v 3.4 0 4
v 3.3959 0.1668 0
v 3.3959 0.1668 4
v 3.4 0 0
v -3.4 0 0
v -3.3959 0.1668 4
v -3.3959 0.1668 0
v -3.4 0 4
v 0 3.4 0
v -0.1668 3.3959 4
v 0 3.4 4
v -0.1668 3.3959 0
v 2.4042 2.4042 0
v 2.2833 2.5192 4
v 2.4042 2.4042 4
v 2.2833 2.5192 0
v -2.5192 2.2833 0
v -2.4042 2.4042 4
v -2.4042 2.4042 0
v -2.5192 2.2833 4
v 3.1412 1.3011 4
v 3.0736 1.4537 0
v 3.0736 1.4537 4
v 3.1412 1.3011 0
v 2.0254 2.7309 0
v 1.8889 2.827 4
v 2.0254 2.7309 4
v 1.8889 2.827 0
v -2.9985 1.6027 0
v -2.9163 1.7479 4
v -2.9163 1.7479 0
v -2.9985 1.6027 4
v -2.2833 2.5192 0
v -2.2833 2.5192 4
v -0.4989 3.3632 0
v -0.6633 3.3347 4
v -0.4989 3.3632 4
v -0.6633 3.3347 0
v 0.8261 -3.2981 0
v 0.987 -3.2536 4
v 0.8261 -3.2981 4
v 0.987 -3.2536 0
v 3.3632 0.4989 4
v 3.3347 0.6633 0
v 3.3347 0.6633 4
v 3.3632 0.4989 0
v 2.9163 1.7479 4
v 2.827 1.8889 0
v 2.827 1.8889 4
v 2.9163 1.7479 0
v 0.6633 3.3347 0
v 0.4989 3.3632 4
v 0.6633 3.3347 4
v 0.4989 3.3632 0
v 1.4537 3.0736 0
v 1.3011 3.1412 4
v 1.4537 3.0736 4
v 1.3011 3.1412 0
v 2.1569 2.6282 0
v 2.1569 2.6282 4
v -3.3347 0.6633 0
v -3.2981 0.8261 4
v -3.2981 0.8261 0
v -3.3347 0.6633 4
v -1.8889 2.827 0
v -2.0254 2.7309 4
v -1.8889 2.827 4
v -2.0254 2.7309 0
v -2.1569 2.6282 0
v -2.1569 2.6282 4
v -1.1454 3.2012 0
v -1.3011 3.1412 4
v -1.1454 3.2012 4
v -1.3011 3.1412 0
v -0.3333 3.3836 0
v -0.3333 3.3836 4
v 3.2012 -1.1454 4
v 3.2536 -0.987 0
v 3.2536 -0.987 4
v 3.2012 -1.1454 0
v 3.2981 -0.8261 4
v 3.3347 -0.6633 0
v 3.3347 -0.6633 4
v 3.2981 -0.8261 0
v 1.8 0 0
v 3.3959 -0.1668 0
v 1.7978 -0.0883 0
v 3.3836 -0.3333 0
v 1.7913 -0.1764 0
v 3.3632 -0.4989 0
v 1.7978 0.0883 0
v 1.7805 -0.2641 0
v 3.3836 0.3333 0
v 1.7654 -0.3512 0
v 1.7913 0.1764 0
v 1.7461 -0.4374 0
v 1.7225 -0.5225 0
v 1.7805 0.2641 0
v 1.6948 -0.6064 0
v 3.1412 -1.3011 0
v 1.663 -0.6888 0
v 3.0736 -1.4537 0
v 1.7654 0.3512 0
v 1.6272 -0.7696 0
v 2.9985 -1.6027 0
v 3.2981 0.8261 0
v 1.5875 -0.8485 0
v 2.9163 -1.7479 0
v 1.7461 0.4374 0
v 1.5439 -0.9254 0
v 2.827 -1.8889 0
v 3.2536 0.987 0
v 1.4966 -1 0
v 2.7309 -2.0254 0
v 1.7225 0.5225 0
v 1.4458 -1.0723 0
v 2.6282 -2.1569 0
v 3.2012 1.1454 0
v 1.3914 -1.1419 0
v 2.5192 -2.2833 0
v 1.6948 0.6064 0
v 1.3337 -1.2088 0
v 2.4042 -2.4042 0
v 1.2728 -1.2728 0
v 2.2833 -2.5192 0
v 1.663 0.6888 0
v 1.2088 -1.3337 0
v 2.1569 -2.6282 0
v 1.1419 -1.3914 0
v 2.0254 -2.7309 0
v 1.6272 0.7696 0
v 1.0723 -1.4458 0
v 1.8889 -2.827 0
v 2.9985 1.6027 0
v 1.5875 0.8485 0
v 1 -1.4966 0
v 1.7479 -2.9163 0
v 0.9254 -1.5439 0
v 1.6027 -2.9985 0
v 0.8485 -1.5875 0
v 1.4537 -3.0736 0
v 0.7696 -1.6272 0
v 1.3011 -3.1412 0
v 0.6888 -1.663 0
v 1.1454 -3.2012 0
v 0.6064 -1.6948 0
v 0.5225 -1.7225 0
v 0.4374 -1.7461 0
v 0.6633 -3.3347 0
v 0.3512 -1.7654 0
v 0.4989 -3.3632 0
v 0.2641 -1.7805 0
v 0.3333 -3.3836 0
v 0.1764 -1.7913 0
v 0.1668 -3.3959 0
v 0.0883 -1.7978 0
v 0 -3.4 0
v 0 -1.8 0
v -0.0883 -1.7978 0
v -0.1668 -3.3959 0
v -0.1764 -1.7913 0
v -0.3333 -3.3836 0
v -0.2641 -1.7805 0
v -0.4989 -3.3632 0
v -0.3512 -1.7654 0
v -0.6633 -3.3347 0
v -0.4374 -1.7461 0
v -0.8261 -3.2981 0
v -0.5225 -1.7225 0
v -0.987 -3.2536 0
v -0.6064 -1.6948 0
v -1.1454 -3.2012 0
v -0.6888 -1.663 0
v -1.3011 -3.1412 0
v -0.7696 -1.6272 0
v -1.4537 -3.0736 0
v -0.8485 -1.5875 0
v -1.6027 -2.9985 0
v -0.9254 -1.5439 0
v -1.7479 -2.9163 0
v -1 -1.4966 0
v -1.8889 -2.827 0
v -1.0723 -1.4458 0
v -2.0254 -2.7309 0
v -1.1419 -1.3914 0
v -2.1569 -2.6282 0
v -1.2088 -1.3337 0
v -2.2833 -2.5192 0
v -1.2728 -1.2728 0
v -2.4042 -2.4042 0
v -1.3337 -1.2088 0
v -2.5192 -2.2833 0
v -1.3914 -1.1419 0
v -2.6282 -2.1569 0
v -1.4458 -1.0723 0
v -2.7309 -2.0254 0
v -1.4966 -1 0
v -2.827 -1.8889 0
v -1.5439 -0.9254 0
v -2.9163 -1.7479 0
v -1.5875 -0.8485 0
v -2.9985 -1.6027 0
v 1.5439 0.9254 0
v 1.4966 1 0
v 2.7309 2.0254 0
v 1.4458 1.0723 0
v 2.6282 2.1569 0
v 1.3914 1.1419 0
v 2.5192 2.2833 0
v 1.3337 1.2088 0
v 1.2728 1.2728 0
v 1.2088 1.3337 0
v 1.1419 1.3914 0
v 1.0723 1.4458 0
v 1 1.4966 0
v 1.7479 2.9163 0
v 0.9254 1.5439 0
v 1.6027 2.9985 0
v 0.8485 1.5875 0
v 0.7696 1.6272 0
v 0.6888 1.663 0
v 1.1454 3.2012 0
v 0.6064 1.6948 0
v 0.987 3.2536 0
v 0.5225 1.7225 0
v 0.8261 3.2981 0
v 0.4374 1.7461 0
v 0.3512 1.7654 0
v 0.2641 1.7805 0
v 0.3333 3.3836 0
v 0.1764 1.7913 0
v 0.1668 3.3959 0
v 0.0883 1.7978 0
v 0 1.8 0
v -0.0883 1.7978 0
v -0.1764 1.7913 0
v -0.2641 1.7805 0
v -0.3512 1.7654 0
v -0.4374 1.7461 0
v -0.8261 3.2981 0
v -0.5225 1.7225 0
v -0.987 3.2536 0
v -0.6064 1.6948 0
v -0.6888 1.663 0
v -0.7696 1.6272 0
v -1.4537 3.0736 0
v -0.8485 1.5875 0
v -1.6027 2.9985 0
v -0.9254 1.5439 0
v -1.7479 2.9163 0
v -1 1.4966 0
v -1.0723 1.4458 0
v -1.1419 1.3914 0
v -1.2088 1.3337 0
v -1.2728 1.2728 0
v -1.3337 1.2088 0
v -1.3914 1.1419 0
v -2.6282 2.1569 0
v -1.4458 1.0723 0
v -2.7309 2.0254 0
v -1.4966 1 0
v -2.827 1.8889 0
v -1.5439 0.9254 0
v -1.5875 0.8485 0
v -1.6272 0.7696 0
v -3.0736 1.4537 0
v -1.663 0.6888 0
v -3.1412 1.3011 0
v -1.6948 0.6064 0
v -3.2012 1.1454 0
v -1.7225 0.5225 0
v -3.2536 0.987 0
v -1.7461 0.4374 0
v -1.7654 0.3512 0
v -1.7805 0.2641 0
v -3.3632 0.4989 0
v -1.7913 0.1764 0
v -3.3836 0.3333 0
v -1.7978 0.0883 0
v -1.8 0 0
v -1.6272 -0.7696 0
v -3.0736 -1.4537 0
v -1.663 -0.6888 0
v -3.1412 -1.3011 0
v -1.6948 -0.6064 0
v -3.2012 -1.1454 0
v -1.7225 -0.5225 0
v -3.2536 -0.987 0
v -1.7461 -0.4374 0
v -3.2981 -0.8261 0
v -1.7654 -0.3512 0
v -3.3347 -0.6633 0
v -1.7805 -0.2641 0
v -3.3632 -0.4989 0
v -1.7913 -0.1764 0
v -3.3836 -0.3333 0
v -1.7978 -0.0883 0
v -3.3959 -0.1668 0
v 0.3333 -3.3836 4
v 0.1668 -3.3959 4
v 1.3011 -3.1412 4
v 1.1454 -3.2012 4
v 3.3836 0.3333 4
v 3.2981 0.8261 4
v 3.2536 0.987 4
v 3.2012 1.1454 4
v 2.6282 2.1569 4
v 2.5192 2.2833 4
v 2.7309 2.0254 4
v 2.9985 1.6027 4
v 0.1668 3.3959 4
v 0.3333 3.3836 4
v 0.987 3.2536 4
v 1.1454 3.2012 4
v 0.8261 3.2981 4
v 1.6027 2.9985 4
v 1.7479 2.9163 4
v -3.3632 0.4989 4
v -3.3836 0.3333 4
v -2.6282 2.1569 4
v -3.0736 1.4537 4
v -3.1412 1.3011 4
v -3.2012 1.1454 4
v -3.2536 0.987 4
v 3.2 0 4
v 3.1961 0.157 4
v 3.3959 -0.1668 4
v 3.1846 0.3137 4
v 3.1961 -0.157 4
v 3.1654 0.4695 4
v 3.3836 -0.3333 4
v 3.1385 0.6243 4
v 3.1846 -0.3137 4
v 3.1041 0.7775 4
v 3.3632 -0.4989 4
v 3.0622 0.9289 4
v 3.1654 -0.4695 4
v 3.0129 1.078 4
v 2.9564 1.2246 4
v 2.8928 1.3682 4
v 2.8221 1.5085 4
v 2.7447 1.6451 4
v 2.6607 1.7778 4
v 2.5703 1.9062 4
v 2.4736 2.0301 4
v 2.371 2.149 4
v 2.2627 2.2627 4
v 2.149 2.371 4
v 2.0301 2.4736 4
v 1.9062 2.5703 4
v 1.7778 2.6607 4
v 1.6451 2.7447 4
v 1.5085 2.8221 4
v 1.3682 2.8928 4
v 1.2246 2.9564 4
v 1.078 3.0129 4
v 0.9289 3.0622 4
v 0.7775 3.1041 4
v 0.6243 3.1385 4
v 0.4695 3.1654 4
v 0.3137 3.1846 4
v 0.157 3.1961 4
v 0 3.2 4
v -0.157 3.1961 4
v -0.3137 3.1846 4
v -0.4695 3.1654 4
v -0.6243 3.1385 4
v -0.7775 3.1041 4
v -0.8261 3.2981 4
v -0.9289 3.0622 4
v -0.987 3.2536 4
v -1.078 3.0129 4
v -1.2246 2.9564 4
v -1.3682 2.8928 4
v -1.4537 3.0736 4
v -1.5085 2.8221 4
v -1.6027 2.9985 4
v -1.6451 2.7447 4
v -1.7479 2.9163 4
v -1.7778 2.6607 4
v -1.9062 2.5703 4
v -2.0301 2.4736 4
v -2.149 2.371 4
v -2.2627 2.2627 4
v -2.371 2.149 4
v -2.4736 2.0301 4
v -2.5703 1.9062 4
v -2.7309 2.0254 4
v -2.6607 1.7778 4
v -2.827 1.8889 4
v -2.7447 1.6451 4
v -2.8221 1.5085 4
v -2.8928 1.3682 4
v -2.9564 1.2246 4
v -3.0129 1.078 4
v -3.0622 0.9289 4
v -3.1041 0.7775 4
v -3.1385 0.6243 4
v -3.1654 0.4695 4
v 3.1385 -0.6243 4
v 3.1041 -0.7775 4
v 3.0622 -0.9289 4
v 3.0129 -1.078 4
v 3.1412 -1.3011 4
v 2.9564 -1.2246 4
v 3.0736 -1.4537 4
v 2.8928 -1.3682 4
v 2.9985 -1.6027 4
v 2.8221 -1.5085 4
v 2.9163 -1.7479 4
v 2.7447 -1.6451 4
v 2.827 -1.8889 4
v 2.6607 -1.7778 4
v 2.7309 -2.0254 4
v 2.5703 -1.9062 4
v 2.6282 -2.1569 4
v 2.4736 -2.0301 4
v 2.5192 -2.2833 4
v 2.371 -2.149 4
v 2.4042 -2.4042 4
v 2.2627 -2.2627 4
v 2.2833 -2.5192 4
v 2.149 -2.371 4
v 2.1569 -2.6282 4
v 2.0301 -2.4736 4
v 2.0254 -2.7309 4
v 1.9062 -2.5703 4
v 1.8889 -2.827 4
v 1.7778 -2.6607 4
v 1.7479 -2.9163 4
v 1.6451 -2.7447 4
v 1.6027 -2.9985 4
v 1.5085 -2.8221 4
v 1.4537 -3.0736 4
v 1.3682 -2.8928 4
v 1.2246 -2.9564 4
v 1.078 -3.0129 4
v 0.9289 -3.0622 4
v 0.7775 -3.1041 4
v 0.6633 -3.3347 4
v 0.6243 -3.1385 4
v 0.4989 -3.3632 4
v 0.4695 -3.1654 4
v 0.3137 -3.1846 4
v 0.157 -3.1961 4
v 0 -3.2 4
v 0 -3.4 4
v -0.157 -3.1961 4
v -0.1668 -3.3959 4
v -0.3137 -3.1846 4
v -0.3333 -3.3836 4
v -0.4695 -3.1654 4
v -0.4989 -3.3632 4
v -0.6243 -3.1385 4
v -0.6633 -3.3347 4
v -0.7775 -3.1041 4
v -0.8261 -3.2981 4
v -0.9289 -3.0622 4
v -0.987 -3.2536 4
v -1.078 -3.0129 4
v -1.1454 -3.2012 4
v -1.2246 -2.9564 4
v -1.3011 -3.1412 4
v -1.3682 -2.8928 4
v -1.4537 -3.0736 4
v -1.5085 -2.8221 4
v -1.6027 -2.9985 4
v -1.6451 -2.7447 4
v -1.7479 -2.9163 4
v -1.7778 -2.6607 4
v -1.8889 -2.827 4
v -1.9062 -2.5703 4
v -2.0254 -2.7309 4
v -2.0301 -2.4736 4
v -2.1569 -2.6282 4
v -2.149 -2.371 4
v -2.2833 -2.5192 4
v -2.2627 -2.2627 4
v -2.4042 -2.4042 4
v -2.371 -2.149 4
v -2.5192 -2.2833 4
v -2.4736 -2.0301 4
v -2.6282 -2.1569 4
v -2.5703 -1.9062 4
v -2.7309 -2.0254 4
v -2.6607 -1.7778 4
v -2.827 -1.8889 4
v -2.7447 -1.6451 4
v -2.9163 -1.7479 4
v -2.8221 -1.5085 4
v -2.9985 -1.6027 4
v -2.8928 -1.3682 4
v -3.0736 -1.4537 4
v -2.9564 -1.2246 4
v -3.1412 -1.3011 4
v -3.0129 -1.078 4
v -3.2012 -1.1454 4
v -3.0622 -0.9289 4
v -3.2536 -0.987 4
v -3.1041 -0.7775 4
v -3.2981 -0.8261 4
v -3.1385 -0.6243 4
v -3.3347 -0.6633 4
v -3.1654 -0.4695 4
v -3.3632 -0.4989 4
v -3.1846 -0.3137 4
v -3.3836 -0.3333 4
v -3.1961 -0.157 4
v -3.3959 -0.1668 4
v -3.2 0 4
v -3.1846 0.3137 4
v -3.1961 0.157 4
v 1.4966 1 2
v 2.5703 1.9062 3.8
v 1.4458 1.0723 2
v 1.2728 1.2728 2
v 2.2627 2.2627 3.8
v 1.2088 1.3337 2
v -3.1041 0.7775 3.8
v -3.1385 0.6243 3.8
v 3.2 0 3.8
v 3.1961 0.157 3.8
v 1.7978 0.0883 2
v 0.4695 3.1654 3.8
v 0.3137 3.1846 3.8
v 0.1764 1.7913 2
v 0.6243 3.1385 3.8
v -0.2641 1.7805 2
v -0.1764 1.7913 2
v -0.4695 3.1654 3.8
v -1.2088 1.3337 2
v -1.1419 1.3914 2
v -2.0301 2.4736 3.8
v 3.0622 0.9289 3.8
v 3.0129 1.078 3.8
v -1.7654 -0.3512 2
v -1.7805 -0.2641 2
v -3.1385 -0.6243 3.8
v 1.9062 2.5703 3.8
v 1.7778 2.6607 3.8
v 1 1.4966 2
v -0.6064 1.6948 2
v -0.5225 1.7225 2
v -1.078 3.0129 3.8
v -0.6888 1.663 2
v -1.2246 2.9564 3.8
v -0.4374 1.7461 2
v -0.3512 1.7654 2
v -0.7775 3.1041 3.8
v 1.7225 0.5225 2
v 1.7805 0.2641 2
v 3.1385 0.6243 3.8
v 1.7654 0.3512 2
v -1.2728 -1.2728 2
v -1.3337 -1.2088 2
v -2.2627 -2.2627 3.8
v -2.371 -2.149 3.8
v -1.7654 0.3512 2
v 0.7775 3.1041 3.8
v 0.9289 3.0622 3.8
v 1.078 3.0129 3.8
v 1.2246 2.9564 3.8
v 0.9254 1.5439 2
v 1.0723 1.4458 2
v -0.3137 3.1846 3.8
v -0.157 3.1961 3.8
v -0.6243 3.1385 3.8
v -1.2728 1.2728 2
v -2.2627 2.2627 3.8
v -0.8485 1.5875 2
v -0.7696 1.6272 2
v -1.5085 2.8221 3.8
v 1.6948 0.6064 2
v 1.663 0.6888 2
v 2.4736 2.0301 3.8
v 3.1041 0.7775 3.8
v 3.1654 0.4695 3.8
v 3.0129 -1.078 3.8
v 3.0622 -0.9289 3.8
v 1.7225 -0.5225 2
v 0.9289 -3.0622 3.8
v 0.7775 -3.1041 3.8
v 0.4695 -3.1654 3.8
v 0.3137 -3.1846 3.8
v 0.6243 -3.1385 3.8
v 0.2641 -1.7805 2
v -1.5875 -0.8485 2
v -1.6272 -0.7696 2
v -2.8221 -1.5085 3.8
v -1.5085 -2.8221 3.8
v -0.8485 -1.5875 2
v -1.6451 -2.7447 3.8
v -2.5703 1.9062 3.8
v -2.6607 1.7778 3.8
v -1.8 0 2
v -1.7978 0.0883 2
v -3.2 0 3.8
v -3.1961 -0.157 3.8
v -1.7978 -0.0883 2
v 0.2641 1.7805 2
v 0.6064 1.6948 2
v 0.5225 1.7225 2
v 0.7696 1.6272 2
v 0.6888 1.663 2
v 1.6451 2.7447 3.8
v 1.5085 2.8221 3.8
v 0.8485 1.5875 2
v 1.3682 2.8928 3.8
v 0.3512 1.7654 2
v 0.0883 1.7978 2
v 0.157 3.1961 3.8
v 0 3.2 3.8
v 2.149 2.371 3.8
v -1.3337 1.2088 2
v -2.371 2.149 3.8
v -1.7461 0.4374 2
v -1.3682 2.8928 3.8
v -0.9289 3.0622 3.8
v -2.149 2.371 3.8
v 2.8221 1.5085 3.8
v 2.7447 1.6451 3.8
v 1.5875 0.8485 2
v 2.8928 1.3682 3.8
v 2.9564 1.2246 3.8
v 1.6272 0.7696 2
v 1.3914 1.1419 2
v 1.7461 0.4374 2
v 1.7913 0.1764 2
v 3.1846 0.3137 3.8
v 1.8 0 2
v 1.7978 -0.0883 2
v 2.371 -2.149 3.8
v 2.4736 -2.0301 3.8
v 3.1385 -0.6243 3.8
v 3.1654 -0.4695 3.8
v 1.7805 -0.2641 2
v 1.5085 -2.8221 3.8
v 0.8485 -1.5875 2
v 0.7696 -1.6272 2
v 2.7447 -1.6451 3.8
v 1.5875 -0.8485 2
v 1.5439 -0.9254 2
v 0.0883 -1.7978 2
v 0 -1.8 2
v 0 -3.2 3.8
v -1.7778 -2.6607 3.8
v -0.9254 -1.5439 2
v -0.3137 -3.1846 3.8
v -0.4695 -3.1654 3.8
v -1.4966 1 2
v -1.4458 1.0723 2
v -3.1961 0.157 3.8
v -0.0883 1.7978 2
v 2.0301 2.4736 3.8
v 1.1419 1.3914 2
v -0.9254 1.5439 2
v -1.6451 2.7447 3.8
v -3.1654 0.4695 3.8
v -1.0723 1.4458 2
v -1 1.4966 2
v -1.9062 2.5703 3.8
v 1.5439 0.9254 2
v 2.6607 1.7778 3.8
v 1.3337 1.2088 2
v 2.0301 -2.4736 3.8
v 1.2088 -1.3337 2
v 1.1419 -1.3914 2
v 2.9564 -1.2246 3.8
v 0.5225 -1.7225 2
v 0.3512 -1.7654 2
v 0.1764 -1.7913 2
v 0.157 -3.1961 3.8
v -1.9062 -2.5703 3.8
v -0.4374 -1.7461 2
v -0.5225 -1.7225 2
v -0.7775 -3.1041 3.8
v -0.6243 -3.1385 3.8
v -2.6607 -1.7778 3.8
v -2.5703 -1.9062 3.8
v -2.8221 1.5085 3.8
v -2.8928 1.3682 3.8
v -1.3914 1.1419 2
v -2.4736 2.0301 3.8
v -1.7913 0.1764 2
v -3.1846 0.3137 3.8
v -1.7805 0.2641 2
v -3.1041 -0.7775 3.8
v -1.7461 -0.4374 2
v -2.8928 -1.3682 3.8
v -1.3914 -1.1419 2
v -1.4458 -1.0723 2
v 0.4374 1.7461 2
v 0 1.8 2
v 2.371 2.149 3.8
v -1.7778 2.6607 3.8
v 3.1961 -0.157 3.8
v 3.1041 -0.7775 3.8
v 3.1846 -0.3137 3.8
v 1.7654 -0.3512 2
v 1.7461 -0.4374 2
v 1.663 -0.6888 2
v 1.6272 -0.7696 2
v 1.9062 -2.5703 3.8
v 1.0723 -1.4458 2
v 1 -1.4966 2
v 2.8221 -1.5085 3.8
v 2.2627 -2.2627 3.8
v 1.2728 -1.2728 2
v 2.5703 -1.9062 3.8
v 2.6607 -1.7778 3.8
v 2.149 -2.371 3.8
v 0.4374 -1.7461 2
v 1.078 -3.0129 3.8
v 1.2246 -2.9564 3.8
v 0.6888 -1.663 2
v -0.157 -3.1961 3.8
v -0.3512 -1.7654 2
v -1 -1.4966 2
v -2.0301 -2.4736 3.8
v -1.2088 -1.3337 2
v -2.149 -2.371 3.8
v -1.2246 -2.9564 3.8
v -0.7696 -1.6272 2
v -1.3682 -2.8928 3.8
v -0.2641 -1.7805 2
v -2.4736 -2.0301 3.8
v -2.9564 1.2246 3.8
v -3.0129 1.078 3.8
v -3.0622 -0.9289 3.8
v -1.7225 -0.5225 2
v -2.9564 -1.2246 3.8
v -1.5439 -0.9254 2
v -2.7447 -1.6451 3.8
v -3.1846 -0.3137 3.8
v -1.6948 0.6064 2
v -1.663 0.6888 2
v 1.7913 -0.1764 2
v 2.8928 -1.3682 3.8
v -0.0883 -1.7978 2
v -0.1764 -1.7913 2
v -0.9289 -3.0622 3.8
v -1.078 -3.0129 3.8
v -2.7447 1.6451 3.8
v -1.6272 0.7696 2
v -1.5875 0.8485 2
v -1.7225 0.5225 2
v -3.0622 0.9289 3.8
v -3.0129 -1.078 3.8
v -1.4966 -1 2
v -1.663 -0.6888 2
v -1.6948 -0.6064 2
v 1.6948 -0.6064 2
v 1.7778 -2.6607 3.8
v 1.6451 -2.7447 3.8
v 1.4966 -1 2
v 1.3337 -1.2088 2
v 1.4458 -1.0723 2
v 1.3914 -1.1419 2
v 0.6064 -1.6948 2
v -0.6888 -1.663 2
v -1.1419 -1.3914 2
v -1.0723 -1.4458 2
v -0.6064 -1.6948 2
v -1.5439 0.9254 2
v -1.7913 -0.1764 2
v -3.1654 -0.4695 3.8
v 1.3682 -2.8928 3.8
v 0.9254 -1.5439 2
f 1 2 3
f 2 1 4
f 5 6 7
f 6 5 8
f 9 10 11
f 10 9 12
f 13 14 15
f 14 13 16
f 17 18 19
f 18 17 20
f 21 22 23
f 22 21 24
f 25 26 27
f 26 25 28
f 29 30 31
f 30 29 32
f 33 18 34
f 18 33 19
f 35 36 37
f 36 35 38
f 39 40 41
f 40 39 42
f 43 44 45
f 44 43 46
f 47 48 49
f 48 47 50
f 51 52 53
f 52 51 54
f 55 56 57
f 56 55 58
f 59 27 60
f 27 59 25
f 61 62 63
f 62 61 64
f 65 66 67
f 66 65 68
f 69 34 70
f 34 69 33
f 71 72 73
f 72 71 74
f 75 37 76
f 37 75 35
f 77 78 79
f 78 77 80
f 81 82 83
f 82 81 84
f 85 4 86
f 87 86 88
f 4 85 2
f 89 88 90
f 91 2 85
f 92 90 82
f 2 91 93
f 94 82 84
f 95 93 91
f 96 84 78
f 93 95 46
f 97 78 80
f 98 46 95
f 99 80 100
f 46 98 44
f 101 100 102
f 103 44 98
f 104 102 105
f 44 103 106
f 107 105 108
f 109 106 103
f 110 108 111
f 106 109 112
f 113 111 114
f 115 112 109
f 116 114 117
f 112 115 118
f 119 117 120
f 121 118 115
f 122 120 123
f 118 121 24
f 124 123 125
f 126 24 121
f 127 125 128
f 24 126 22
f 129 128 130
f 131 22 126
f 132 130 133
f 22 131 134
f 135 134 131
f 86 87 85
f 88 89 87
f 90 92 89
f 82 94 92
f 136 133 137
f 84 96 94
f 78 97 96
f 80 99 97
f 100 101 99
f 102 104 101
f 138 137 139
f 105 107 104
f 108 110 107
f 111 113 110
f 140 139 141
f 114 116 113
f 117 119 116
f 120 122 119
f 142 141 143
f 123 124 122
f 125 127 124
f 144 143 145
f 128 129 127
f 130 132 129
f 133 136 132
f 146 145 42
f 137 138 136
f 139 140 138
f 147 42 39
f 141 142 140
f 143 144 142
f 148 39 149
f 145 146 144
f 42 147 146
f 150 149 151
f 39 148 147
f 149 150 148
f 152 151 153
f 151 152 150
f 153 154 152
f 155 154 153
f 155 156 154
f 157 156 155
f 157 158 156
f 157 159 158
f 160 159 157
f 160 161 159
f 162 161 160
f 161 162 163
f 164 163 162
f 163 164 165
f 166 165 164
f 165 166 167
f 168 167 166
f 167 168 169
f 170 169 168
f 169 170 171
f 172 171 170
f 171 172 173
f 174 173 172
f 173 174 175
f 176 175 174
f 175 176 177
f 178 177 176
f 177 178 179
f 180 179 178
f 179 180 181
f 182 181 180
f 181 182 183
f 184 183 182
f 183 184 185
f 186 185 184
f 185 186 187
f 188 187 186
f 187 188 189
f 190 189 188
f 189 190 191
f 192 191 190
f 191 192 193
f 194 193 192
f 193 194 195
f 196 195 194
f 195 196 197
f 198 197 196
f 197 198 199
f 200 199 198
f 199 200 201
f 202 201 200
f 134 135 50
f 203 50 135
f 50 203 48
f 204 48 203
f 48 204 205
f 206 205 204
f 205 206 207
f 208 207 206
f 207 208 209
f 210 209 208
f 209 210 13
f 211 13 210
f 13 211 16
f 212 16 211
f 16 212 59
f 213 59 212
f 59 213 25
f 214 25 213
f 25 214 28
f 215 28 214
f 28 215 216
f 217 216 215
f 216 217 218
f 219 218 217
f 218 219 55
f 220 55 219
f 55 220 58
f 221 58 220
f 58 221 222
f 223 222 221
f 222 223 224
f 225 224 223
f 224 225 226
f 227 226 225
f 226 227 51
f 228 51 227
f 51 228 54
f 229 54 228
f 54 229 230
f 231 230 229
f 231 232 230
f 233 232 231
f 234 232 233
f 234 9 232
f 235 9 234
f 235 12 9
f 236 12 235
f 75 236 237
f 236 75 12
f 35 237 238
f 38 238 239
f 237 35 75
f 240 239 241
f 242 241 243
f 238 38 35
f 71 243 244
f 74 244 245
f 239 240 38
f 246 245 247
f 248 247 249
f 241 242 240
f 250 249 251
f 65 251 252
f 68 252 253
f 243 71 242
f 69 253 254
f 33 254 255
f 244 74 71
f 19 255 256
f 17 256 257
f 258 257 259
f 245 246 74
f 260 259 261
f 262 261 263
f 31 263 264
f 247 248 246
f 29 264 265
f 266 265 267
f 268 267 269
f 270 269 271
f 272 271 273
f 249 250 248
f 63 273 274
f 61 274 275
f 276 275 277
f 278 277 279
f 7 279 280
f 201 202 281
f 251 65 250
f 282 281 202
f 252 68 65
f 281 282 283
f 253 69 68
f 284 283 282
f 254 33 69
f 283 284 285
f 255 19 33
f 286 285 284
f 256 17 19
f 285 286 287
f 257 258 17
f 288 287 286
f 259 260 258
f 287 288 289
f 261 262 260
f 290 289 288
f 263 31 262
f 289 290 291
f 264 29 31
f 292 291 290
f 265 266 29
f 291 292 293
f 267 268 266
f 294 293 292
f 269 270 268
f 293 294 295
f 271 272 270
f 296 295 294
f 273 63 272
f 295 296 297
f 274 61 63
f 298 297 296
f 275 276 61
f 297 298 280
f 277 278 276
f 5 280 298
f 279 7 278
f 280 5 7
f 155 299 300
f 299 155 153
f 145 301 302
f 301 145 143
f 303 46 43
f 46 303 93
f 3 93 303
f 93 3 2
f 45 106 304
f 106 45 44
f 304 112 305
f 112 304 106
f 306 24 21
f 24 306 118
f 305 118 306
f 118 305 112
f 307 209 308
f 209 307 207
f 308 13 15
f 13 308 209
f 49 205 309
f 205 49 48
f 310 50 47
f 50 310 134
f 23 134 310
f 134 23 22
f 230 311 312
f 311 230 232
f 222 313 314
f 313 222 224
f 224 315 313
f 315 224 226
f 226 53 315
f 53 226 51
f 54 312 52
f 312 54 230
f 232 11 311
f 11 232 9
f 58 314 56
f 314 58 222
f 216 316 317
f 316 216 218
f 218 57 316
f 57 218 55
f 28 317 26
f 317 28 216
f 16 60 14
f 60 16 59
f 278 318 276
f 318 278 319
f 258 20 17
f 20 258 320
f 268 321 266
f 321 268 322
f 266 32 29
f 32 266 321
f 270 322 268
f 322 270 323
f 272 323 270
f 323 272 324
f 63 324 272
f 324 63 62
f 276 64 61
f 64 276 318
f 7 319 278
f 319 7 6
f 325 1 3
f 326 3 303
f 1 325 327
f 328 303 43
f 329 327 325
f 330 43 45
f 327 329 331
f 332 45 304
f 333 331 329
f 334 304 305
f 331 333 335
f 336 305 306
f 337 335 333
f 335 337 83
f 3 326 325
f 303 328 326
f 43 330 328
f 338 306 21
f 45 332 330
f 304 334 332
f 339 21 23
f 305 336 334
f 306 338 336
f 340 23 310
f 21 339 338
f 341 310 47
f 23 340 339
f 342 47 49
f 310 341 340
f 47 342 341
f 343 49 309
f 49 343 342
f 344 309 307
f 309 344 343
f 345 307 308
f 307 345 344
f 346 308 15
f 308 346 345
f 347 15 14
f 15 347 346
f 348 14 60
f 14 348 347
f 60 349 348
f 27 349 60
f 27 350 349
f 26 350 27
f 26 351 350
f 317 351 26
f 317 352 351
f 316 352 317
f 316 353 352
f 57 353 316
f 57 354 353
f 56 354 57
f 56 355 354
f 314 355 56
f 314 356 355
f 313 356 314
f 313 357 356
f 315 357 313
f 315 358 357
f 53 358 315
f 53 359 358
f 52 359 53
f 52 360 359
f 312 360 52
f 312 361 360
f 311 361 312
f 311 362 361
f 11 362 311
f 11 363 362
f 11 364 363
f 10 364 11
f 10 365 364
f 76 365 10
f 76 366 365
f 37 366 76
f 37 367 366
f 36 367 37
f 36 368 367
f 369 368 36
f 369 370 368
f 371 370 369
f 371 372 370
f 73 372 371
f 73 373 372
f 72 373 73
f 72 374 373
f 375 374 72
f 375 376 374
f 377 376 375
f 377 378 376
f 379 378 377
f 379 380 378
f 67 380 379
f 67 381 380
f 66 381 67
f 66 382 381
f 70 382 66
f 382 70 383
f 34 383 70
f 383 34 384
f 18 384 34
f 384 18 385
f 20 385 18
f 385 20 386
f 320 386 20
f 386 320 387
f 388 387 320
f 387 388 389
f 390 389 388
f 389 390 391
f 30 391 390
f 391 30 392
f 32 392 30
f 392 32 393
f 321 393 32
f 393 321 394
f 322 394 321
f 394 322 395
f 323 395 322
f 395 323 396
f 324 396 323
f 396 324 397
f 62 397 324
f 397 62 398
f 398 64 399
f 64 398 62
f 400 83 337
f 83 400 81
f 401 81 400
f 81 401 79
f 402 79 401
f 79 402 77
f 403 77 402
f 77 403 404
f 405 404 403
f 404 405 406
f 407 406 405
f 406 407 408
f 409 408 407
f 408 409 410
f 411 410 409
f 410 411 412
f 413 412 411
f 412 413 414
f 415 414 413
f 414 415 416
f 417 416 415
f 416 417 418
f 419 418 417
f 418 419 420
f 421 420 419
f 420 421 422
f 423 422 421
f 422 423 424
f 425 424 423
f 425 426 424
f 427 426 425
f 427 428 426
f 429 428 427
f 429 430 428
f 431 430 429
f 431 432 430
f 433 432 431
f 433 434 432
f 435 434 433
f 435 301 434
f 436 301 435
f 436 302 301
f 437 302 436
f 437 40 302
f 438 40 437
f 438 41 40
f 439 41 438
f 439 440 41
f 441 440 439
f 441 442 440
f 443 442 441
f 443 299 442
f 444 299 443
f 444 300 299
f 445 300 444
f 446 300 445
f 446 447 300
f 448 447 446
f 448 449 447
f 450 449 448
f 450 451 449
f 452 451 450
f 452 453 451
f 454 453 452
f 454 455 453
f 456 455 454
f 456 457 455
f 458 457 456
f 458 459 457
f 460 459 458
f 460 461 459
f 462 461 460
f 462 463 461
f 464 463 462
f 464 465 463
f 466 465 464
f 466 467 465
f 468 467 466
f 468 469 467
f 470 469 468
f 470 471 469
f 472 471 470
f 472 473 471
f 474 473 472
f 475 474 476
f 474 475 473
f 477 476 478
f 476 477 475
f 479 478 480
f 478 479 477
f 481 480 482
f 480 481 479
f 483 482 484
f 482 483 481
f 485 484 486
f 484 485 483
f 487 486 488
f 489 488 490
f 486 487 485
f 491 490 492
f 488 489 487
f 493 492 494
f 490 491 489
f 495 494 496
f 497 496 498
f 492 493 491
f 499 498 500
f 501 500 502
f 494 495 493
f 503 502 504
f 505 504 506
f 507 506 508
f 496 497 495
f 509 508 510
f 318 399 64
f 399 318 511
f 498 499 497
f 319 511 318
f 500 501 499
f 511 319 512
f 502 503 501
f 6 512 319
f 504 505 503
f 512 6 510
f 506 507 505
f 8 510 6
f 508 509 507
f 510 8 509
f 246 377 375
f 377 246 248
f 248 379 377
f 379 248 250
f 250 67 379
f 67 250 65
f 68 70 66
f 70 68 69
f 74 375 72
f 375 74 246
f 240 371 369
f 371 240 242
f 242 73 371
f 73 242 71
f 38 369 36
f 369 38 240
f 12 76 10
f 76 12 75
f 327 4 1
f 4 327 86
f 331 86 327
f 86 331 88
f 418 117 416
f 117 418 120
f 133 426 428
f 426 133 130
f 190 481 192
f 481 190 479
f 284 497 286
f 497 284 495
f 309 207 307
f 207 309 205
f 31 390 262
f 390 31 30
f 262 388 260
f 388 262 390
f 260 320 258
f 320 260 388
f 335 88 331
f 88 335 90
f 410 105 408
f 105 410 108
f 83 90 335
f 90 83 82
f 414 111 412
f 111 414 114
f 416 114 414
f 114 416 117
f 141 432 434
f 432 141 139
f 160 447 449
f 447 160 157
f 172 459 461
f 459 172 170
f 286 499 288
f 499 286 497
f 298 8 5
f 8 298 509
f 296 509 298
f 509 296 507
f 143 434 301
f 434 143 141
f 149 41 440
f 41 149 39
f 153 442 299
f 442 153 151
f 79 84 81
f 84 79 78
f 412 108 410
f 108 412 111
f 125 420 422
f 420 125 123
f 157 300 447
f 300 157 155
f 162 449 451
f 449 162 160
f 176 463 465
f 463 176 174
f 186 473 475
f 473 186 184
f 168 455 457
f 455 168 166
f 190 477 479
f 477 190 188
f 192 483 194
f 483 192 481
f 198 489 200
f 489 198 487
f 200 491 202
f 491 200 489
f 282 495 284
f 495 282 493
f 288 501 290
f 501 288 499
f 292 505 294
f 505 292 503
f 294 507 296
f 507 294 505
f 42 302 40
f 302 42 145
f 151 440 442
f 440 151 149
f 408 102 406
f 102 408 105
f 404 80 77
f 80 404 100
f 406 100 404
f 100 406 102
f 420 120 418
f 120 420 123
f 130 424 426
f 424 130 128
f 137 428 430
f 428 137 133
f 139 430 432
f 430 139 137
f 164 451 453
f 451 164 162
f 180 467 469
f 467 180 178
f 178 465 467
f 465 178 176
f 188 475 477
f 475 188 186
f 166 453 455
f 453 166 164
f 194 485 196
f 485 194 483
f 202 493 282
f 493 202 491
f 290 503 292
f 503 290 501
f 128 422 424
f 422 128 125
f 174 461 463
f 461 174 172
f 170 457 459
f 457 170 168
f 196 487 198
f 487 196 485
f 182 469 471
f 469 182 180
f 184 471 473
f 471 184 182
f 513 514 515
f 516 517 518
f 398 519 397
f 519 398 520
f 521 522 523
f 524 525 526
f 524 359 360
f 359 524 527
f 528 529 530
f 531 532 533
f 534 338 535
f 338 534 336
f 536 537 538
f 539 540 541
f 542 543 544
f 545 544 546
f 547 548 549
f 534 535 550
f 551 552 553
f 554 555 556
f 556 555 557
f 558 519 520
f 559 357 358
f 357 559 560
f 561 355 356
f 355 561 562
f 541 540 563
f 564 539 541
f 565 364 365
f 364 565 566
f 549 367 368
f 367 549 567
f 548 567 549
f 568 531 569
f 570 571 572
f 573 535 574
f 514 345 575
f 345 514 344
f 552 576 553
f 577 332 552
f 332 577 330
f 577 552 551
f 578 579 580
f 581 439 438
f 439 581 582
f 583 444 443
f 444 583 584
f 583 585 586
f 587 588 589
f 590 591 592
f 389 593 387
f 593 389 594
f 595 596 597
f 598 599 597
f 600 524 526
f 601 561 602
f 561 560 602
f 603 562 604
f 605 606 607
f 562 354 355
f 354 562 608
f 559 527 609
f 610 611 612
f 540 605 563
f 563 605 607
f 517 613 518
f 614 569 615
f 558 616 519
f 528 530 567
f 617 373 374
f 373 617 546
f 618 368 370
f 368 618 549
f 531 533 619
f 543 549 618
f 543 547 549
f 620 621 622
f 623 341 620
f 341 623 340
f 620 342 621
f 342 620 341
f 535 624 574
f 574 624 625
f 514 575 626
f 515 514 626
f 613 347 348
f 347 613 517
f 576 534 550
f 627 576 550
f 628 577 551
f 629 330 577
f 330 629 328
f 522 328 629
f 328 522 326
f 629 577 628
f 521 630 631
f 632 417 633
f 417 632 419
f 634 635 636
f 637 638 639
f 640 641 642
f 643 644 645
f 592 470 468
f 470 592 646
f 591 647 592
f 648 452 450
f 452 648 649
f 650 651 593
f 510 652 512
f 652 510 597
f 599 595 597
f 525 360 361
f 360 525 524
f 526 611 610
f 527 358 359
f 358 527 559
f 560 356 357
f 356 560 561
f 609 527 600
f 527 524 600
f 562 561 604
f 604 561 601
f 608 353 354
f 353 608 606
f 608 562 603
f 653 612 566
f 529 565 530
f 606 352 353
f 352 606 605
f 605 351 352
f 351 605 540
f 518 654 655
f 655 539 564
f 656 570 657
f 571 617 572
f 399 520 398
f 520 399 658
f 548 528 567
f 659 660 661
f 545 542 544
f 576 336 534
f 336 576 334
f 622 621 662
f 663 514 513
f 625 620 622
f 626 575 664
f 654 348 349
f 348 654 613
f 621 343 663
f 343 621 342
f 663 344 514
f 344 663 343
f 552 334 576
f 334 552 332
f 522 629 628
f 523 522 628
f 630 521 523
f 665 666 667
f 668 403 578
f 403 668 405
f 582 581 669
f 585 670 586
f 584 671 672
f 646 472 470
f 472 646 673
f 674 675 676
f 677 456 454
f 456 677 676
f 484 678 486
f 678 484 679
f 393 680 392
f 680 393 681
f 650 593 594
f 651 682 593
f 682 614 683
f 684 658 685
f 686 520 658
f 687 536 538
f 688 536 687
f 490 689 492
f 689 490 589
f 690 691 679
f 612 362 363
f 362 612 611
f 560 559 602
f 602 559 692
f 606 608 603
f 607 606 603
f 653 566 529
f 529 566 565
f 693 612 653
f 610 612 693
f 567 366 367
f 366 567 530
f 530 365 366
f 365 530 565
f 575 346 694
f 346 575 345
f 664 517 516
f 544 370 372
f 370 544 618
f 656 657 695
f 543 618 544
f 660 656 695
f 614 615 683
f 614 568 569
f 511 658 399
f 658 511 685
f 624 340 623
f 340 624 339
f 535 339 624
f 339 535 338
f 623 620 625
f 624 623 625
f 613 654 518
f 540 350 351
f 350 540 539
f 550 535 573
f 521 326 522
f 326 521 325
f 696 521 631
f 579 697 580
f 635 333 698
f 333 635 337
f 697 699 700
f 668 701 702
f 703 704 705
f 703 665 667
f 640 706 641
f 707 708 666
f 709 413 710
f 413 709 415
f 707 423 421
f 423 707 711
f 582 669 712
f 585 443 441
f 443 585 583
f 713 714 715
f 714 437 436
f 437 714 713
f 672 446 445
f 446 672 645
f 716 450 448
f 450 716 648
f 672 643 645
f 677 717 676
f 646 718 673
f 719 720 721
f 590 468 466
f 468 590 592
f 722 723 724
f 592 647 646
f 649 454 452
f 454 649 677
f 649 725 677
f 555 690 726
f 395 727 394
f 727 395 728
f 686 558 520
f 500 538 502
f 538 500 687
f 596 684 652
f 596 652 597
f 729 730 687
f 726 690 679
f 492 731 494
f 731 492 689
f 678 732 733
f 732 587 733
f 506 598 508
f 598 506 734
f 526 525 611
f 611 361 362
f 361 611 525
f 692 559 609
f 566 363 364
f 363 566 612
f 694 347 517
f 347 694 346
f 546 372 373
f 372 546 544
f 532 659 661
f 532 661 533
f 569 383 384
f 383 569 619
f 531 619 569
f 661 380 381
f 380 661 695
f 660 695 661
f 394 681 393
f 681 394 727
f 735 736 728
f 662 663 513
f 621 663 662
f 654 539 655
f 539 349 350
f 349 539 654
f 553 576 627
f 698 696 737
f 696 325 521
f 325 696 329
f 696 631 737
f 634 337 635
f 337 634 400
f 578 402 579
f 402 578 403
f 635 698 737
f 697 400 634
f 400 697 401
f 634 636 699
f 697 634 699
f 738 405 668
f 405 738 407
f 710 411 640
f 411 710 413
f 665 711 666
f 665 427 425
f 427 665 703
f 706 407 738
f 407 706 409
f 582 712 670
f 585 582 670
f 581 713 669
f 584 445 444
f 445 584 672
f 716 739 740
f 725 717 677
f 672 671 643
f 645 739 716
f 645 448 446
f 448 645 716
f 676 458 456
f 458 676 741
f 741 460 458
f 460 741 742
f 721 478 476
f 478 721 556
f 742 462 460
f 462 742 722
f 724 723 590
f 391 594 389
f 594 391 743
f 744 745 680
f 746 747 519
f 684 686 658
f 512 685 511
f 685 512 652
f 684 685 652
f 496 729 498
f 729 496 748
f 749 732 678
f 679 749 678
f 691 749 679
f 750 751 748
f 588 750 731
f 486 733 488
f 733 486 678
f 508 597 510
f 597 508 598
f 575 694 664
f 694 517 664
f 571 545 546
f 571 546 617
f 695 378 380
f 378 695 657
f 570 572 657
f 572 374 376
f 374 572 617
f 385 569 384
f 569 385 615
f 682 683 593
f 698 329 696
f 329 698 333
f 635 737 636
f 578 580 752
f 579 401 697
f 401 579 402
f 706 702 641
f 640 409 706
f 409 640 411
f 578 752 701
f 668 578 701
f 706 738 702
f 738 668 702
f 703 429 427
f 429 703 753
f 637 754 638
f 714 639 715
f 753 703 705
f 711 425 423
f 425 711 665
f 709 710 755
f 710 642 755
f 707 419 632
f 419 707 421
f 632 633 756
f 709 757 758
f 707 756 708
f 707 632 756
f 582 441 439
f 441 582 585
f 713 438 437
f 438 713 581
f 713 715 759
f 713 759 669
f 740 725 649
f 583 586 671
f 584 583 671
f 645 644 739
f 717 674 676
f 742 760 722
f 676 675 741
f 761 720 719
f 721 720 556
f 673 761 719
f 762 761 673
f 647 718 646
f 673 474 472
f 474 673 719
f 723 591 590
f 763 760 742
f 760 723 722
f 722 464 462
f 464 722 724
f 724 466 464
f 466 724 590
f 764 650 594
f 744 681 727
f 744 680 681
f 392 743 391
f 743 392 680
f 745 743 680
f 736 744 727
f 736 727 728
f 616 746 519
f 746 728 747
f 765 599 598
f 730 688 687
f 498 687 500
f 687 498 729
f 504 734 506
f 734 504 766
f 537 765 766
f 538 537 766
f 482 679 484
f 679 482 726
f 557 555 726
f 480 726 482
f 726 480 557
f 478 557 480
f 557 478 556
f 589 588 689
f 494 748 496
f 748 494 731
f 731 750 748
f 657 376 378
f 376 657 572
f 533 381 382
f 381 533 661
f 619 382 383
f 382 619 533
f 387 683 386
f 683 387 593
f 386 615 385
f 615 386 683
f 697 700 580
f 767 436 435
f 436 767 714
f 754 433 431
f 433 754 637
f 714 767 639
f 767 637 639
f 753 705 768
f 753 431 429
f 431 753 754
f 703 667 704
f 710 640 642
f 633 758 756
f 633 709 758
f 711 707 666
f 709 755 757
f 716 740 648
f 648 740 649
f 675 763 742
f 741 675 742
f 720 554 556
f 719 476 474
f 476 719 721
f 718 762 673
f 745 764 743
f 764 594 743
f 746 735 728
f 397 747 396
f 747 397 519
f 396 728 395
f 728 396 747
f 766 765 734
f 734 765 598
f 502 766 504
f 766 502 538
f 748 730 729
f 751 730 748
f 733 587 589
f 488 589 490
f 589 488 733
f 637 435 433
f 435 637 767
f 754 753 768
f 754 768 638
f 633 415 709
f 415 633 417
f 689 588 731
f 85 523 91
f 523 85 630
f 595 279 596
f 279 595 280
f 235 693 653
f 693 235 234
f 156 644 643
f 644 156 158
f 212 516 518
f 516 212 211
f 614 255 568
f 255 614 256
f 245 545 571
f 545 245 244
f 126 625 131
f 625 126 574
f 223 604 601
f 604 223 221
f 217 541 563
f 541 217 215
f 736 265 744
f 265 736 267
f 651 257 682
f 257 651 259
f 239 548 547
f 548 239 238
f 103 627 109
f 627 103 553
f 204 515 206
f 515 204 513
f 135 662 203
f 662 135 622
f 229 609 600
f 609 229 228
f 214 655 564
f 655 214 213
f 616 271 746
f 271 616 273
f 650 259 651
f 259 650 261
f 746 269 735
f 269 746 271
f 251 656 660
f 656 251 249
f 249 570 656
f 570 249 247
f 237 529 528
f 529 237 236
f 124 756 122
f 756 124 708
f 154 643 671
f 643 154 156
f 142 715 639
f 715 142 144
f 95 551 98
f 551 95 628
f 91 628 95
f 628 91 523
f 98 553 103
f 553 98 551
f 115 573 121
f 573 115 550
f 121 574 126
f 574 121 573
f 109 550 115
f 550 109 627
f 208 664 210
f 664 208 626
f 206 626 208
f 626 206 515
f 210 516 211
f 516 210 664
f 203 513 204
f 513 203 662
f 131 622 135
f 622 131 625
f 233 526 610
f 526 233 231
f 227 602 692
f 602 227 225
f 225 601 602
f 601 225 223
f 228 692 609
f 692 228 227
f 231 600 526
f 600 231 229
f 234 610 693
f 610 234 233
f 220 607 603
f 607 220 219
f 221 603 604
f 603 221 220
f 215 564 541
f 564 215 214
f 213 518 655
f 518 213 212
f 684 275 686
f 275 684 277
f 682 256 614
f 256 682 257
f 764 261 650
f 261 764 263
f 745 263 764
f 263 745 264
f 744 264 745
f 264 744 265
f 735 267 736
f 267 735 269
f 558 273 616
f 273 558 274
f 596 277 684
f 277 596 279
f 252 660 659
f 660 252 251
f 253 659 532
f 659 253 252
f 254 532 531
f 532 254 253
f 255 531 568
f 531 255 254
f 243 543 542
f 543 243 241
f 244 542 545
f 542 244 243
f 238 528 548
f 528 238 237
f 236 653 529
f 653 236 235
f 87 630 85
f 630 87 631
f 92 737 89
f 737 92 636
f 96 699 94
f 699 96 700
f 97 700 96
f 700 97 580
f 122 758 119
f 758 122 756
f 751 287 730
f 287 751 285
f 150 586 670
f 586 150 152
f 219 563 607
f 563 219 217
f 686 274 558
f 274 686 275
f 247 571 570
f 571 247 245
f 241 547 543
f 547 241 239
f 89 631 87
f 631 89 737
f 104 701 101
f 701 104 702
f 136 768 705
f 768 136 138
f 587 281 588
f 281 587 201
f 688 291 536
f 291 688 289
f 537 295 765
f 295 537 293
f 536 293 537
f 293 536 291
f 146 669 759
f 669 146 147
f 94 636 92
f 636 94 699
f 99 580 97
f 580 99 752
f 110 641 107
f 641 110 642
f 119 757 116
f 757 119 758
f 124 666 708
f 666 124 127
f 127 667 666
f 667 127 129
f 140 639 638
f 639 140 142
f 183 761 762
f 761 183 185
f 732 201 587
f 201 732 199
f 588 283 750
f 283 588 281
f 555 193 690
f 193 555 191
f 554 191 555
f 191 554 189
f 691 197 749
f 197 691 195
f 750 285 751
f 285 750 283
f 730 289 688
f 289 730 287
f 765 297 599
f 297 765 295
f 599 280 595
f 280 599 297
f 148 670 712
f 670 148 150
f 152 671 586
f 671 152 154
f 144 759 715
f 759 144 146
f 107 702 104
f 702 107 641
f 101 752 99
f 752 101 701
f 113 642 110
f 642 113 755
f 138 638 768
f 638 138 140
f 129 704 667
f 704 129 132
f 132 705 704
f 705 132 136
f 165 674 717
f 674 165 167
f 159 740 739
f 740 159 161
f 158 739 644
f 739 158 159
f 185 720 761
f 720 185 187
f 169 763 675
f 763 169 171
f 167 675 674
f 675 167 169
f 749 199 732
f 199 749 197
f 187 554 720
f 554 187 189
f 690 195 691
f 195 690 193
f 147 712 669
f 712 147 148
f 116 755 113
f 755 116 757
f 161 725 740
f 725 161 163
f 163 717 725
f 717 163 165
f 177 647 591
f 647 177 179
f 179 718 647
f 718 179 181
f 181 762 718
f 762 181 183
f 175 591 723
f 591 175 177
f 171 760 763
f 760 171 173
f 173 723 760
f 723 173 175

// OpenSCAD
diam=3.6;
height=4;
$fn=128;
bigger_diam=6.4;

difference() {
    cylinder(r=diam/2+1.6,h=height);
    hull() {
        translate([0,0,2]) cylinder(r=diam/2,h=0.2);   
        translate([0,0,height-0.2]) cylinder(r=bigger_diam/2,h=0.2);
    }
    cylinder(r=diam/2,h=height);
}
